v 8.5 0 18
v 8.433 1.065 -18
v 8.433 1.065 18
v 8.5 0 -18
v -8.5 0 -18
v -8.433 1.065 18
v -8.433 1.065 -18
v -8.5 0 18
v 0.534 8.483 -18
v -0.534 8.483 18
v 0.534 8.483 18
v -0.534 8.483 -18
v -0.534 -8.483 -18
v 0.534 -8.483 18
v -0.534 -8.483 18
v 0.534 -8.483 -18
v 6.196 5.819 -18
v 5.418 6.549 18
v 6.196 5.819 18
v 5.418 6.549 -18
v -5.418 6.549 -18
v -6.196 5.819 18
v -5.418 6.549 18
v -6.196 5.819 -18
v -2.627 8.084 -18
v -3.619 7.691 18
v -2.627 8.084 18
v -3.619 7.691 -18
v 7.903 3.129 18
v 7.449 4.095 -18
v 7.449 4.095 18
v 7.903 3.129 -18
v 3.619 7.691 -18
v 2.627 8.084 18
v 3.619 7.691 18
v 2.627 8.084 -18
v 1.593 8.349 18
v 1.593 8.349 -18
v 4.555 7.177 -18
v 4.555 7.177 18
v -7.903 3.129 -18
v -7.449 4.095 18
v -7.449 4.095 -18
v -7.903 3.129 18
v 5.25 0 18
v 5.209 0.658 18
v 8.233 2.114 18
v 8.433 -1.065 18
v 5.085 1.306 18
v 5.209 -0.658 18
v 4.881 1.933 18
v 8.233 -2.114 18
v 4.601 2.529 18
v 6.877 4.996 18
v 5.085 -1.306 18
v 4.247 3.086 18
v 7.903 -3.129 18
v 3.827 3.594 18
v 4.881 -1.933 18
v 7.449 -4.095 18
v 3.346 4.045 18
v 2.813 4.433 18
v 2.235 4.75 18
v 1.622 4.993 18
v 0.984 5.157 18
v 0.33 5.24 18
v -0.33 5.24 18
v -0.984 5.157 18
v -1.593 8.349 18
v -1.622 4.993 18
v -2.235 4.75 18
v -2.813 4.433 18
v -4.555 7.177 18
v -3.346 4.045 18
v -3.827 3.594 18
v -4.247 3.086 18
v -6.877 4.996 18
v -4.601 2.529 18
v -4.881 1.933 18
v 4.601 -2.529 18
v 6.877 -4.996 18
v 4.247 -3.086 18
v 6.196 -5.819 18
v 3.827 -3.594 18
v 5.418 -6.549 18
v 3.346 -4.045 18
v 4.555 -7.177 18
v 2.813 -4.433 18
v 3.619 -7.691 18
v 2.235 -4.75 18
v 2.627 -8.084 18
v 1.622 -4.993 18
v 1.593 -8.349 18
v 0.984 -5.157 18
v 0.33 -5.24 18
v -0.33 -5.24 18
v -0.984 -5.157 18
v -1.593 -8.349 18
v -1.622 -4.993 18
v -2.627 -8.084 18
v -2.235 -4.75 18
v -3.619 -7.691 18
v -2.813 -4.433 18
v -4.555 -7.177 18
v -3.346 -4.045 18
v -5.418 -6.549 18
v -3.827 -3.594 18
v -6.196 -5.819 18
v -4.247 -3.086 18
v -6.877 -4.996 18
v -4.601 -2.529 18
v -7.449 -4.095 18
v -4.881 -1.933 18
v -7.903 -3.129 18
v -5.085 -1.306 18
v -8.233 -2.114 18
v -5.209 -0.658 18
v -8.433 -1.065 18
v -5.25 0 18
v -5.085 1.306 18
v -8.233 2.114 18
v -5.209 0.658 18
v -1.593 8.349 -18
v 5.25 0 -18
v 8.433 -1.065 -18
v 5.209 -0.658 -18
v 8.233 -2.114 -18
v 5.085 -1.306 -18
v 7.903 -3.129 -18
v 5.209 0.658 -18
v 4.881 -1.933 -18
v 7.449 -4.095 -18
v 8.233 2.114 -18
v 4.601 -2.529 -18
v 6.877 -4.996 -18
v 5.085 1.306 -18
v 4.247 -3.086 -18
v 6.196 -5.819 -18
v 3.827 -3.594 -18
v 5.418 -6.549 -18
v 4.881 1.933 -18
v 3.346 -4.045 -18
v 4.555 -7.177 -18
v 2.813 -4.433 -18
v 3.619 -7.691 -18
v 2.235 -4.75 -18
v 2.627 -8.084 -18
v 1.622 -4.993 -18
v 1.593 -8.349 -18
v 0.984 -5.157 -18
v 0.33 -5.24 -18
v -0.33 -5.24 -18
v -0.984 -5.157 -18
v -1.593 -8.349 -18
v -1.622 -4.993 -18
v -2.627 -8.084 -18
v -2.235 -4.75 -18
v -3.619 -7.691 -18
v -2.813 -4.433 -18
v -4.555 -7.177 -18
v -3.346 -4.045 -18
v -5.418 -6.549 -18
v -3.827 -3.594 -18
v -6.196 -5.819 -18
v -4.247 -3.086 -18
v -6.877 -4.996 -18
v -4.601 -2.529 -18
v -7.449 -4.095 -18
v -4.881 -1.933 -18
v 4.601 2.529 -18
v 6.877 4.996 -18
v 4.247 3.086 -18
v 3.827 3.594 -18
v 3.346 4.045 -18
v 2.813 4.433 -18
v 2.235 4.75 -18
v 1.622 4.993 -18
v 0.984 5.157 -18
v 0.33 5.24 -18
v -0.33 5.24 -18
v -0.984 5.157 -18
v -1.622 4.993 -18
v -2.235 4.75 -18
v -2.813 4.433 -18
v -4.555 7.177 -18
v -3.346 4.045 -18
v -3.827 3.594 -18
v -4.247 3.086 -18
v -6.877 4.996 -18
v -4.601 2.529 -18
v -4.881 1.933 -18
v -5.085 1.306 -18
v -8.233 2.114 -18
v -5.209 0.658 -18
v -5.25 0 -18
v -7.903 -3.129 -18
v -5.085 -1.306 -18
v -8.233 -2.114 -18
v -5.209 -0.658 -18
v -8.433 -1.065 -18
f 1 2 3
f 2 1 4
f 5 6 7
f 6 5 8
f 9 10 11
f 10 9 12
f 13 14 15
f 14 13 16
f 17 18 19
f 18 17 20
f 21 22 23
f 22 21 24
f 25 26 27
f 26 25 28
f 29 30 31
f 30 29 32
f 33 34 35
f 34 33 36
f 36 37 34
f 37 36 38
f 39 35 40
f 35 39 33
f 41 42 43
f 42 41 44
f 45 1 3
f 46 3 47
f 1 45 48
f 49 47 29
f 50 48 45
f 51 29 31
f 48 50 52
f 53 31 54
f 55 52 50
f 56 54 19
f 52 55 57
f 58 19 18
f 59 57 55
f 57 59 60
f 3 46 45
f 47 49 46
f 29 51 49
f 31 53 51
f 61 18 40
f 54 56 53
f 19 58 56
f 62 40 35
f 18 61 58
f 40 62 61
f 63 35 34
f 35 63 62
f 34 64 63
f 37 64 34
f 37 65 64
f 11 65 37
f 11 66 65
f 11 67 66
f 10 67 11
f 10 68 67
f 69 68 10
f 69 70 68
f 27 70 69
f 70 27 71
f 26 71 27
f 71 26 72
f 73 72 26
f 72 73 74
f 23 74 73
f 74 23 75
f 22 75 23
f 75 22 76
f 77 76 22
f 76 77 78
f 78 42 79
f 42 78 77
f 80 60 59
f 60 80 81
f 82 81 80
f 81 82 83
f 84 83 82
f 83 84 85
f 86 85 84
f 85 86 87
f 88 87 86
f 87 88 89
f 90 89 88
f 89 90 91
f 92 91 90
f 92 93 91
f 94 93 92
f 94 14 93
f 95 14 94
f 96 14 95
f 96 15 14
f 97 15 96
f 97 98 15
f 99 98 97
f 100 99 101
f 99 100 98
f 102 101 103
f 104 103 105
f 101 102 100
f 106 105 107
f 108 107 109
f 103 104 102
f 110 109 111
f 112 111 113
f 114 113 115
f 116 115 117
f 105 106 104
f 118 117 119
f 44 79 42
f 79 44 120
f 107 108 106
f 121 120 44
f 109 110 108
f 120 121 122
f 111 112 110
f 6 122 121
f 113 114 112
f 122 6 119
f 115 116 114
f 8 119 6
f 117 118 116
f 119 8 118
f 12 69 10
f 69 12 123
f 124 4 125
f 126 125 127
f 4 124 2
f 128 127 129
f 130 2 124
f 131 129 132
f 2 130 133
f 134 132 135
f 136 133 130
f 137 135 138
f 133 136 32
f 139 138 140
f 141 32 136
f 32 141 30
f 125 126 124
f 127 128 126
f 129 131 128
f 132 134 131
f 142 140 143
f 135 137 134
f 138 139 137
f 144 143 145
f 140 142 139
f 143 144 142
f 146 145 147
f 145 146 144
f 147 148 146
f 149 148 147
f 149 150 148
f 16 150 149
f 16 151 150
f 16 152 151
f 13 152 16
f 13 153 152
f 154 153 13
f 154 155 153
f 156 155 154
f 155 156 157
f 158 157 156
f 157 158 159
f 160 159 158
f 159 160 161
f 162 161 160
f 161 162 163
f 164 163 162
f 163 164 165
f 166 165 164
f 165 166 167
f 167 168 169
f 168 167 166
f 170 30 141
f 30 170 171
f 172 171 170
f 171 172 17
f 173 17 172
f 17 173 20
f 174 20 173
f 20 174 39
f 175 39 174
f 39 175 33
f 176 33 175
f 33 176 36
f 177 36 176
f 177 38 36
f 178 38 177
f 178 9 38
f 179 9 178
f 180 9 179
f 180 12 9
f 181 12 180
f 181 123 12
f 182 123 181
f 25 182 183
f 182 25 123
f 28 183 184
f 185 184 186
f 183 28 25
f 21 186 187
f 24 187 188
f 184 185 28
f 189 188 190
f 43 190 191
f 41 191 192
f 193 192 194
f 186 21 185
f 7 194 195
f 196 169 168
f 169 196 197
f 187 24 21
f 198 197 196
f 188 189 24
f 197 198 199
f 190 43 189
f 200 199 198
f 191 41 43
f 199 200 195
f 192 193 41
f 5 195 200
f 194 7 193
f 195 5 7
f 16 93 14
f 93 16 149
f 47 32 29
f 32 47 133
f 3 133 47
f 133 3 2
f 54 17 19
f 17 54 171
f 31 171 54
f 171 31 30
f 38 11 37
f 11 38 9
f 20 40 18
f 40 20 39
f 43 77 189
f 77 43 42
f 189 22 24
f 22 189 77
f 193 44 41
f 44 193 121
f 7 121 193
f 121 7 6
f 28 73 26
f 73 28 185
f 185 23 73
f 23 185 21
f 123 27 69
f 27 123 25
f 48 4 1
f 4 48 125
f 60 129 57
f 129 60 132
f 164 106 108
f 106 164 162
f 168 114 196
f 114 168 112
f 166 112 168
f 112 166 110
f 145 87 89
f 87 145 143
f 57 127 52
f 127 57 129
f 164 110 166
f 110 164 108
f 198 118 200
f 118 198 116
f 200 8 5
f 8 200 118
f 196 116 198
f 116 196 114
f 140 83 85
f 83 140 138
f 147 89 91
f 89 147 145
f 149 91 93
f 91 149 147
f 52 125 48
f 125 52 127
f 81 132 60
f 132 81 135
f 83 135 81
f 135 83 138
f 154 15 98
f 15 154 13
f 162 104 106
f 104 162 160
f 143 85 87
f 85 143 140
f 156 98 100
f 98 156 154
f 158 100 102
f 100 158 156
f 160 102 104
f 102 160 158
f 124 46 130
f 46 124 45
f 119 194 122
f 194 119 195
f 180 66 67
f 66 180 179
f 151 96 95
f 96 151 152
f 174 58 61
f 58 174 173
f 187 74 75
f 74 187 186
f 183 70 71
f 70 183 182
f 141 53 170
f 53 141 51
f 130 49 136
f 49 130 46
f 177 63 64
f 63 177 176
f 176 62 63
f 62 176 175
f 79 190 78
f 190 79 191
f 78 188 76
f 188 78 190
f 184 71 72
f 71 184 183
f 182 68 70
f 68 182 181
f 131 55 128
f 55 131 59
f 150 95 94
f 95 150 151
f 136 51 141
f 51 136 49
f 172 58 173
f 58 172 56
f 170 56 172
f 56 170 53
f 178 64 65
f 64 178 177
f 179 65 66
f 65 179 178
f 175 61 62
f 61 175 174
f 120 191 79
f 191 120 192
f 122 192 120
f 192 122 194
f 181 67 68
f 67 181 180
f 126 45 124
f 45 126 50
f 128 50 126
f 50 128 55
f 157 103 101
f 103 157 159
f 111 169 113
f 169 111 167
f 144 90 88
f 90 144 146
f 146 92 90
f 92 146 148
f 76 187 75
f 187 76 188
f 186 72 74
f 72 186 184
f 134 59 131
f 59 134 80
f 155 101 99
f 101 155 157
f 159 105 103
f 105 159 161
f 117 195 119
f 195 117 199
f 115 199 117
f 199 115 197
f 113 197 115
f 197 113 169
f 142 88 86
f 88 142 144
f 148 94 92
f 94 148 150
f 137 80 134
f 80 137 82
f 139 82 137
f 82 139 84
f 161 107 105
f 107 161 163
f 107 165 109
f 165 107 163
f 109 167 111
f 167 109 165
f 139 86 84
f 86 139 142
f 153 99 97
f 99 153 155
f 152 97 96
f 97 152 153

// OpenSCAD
$fn = 50;


difference() {
	union() {
		translate(v = [0, 0, -18.0000000000]) {
			cylinder(h = 36, r = 8.5000000000);
		}
	}
	union() {
		translate(v = [0, 0, -100.0000000000]) {
			cylinder(h = 200, r = 5.2500000000);
		}
	}
}
